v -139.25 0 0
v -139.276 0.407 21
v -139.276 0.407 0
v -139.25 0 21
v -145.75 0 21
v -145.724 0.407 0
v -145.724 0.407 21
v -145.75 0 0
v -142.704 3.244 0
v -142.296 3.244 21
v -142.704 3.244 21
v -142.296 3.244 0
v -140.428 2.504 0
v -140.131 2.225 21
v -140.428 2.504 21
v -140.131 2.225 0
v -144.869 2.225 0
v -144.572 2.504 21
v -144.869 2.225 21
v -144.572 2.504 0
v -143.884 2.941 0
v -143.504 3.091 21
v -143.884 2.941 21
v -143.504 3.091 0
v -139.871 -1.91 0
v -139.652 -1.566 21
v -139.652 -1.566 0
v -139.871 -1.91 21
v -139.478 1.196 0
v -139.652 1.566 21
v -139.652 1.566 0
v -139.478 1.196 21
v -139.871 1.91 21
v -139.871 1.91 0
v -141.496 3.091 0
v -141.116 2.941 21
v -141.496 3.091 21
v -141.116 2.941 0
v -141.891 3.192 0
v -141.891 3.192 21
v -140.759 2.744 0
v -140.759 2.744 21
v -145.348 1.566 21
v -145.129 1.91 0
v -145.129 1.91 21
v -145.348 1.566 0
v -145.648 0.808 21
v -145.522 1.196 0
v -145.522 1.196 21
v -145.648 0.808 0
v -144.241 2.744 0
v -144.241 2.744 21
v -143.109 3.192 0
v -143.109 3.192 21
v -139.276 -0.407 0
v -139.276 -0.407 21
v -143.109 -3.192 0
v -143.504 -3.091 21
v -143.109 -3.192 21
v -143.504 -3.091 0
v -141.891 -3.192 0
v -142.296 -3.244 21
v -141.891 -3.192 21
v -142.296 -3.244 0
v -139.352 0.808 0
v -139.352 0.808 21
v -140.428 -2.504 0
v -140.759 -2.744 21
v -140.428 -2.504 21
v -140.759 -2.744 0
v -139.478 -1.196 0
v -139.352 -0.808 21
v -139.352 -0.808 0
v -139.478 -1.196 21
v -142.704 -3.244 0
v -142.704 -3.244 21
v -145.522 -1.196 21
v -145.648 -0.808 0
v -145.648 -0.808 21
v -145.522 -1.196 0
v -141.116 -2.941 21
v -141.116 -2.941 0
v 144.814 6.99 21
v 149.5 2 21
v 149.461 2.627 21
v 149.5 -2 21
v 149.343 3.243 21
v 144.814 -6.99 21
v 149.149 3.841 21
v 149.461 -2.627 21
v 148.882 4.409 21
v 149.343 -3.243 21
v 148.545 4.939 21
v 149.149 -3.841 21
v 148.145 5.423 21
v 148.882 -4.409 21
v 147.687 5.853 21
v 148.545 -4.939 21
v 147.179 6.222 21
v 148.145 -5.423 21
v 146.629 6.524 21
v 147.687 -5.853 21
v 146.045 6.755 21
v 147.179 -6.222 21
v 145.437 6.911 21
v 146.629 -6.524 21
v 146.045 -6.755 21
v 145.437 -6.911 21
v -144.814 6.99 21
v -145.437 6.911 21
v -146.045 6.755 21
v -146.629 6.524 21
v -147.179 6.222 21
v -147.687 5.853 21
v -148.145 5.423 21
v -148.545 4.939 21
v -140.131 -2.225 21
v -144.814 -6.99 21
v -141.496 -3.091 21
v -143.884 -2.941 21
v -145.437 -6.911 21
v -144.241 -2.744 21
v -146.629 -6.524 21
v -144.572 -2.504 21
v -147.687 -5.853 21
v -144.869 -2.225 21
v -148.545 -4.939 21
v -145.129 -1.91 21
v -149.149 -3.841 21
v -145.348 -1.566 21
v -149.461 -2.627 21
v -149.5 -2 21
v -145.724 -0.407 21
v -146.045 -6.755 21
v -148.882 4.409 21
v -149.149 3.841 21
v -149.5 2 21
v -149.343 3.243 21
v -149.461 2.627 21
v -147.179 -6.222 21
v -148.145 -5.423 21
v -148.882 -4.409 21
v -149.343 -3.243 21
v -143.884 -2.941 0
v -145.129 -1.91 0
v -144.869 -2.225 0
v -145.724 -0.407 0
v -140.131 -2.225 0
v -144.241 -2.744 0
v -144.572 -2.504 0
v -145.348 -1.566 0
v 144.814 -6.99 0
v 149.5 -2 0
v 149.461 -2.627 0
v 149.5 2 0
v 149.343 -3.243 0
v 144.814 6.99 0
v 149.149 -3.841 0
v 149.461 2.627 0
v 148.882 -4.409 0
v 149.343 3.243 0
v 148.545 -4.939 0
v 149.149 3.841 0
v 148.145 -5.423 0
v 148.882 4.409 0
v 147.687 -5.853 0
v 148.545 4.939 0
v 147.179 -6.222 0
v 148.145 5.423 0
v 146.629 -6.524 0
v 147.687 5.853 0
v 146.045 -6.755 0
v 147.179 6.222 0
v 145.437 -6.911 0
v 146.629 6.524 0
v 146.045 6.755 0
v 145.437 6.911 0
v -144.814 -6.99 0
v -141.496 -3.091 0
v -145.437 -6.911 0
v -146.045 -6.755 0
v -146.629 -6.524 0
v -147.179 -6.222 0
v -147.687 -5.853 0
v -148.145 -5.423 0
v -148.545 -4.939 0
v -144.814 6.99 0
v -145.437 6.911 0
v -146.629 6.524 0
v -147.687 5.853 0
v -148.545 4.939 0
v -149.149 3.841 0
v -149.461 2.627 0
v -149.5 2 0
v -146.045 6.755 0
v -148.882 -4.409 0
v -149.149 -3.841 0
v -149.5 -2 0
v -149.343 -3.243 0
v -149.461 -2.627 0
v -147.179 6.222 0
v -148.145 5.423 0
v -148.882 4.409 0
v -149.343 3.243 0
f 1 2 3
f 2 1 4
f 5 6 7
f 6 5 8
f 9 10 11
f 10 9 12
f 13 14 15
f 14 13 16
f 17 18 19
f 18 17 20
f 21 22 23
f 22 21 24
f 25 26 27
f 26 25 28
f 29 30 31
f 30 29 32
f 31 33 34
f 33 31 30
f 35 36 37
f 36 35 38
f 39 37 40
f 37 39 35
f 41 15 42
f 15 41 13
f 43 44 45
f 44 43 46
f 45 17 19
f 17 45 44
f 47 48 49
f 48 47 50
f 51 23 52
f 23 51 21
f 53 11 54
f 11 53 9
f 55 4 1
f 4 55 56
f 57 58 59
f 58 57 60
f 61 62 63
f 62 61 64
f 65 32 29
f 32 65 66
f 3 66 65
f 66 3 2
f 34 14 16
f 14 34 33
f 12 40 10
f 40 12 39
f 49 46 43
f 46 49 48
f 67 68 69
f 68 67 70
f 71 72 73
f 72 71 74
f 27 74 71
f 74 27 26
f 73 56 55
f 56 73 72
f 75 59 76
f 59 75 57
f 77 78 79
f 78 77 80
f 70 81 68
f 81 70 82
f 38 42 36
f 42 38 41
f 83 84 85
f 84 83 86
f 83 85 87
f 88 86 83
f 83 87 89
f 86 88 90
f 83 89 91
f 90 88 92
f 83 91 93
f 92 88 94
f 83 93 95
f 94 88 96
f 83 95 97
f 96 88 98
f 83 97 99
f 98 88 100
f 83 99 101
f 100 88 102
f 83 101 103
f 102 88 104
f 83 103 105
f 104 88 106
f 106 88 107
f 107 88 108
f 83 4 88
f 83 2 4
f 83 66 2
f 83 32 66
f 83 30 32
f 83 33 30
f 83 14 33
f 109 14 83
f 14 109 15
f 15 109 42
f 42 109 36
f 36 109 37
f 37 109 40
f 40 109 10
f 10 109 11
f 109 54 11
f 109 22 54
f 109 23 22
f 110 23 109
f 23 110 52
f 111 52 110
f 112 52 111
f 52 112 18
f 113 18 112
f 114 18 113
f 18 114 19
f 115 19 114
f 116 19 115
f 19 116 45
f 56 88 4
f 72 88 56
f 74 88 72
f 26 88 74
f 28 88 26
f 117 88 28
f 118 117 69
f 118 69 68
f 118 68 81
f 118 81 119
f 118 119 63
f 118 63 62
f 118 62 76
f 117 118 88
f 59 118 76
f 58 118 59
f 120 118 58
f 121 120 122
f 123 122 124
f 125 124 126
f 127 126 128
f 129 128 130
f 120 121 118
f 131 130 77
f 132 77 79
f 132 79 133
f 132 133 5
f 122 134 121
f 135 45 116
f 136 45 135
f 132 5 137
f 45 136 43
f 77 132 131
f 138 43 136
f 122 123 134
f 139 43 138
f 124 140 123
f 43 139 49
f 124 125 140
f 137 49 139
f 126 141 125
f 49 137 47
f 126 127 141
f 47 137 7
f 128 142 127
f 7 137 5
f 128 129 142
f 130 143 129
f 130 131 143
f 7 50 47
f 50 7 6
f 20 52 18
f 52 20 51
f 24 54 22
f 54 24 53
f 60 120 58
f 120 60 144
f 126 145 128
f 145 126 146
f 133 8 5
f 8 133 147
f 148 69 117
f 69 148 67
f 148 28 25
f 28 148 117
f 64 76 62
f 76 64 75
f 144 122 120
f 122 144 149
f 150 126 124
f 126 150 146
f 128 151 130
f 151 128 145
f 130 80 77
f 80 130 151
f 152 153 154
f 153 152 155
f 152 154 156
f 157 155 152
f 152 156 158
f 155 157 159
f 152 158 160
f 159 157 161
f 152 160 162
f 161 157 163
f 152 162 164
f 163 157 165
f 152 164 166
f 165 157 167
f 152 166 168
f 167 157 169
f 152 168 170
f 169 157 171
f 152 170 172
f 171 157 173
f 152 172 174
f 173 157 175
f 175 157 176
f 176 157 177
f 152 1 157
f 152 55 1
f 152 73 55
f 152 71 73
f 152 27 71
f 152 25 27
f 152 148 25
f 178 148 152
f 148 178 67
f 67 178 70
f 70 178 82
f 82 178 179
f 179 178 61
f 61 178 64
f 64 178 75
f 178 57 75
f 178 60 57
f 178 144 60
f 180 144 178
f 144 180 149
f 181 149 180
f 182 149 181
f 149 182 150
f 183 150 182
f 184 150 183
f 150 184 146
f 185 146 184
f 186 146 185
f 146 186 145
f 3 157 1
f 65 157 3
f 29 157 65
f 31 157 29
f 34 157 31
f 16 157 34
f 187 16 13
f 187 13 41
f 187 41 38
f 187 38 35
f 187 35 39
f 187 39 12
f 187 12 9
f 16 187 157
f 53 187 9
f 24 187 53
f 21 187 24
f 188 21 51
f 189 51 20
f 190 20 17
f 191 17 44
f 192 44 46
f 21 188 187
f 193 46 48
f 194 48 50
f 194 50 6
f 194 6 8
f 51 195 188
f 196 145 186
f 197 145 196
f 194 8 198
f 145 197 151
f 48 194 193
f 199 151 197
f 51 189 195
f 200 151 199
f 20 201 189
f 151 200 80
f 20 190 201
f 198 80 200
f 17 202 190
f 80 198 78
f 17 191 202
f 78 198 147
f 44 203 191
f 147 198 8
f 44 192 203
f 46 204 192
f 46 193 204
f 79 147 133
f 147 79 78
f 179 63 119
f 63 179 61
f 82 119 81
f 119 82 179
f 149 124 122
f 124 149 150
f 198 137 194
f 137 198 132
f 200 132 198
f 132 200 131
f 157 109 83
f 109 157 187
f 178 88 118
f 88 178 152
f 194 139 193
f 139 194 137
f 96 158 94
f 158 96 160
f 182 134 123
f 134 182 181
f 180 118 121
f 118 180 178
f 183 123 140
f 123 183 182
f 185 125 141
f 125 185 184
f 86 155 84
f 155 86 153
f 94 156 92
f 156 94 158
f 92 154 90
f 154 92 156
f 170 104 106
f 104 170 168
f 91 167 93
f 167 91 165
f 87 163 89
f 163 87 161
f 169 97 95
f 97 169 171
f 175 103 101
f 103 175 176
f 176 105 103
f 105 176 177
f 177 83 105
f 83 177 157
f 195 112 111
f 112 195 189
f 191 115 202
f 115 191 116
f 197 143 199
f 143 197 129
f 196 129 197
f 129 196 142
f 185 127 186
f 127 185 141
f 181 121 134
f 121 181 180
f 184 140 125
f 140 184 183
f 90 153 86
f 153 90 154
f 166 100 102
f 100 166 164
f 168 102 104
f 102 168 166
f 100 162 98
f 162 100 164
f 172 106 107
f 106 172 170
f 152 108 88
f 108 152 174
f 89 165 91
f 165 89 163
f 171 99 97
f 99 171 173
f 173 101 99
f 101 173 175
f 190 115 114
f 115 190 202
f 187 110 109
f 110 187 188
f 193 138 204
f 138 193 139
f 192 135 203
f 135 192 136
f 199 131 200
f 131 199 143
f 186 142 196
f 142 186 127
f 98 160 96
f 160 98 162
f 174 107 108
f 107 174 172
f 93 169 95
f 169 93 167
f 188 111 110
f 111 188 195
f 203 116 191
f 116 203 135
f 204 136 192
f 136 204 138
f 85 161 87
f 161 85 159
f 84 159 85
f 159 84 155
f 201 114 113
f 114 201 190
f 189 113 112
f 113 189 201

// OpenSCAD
$fn = 50;


difference() {
	union() {
		hull() {
			translate(v = [-144.5000000000, 2.0000000000, 0]) {
				cylinder(h = 21, r = 5);
			}
			translate(v = [144.5000000000, 2.0000000000, 0]) {
				cylinder(h = 21, r = 5);
			}
			translate(v = [-144.5000000000, -2.0000000000, 0]) {
				cylinder(h = 21, r = 5);
			}
			translate(v = [144.5000000000, -2.0000000000, 0]) {
				cylinder(h = 21, r = 5);
			}
		}
	}
	union() {
		translate(v = [-142.5000000000, 0.0000000000, 0]) {
			cylinder(h = 21, r = 3.2500000000);
		}
		translate(v = [-142.5000000000, 0.0000000000, 0]) {
			cylinder(h = 21, r = 1.8000000000);
		}
		translate(v = [-142.5000000000, 0.0000000000, 0]) {
			cylinder(h = 21, r = 1.8000000000);
		}
		translate(v = [-142.5000000000, 0.0000000000, 0]) {
			cylinder(h = 21, r = 1.8000000000);
		}
	}
}
